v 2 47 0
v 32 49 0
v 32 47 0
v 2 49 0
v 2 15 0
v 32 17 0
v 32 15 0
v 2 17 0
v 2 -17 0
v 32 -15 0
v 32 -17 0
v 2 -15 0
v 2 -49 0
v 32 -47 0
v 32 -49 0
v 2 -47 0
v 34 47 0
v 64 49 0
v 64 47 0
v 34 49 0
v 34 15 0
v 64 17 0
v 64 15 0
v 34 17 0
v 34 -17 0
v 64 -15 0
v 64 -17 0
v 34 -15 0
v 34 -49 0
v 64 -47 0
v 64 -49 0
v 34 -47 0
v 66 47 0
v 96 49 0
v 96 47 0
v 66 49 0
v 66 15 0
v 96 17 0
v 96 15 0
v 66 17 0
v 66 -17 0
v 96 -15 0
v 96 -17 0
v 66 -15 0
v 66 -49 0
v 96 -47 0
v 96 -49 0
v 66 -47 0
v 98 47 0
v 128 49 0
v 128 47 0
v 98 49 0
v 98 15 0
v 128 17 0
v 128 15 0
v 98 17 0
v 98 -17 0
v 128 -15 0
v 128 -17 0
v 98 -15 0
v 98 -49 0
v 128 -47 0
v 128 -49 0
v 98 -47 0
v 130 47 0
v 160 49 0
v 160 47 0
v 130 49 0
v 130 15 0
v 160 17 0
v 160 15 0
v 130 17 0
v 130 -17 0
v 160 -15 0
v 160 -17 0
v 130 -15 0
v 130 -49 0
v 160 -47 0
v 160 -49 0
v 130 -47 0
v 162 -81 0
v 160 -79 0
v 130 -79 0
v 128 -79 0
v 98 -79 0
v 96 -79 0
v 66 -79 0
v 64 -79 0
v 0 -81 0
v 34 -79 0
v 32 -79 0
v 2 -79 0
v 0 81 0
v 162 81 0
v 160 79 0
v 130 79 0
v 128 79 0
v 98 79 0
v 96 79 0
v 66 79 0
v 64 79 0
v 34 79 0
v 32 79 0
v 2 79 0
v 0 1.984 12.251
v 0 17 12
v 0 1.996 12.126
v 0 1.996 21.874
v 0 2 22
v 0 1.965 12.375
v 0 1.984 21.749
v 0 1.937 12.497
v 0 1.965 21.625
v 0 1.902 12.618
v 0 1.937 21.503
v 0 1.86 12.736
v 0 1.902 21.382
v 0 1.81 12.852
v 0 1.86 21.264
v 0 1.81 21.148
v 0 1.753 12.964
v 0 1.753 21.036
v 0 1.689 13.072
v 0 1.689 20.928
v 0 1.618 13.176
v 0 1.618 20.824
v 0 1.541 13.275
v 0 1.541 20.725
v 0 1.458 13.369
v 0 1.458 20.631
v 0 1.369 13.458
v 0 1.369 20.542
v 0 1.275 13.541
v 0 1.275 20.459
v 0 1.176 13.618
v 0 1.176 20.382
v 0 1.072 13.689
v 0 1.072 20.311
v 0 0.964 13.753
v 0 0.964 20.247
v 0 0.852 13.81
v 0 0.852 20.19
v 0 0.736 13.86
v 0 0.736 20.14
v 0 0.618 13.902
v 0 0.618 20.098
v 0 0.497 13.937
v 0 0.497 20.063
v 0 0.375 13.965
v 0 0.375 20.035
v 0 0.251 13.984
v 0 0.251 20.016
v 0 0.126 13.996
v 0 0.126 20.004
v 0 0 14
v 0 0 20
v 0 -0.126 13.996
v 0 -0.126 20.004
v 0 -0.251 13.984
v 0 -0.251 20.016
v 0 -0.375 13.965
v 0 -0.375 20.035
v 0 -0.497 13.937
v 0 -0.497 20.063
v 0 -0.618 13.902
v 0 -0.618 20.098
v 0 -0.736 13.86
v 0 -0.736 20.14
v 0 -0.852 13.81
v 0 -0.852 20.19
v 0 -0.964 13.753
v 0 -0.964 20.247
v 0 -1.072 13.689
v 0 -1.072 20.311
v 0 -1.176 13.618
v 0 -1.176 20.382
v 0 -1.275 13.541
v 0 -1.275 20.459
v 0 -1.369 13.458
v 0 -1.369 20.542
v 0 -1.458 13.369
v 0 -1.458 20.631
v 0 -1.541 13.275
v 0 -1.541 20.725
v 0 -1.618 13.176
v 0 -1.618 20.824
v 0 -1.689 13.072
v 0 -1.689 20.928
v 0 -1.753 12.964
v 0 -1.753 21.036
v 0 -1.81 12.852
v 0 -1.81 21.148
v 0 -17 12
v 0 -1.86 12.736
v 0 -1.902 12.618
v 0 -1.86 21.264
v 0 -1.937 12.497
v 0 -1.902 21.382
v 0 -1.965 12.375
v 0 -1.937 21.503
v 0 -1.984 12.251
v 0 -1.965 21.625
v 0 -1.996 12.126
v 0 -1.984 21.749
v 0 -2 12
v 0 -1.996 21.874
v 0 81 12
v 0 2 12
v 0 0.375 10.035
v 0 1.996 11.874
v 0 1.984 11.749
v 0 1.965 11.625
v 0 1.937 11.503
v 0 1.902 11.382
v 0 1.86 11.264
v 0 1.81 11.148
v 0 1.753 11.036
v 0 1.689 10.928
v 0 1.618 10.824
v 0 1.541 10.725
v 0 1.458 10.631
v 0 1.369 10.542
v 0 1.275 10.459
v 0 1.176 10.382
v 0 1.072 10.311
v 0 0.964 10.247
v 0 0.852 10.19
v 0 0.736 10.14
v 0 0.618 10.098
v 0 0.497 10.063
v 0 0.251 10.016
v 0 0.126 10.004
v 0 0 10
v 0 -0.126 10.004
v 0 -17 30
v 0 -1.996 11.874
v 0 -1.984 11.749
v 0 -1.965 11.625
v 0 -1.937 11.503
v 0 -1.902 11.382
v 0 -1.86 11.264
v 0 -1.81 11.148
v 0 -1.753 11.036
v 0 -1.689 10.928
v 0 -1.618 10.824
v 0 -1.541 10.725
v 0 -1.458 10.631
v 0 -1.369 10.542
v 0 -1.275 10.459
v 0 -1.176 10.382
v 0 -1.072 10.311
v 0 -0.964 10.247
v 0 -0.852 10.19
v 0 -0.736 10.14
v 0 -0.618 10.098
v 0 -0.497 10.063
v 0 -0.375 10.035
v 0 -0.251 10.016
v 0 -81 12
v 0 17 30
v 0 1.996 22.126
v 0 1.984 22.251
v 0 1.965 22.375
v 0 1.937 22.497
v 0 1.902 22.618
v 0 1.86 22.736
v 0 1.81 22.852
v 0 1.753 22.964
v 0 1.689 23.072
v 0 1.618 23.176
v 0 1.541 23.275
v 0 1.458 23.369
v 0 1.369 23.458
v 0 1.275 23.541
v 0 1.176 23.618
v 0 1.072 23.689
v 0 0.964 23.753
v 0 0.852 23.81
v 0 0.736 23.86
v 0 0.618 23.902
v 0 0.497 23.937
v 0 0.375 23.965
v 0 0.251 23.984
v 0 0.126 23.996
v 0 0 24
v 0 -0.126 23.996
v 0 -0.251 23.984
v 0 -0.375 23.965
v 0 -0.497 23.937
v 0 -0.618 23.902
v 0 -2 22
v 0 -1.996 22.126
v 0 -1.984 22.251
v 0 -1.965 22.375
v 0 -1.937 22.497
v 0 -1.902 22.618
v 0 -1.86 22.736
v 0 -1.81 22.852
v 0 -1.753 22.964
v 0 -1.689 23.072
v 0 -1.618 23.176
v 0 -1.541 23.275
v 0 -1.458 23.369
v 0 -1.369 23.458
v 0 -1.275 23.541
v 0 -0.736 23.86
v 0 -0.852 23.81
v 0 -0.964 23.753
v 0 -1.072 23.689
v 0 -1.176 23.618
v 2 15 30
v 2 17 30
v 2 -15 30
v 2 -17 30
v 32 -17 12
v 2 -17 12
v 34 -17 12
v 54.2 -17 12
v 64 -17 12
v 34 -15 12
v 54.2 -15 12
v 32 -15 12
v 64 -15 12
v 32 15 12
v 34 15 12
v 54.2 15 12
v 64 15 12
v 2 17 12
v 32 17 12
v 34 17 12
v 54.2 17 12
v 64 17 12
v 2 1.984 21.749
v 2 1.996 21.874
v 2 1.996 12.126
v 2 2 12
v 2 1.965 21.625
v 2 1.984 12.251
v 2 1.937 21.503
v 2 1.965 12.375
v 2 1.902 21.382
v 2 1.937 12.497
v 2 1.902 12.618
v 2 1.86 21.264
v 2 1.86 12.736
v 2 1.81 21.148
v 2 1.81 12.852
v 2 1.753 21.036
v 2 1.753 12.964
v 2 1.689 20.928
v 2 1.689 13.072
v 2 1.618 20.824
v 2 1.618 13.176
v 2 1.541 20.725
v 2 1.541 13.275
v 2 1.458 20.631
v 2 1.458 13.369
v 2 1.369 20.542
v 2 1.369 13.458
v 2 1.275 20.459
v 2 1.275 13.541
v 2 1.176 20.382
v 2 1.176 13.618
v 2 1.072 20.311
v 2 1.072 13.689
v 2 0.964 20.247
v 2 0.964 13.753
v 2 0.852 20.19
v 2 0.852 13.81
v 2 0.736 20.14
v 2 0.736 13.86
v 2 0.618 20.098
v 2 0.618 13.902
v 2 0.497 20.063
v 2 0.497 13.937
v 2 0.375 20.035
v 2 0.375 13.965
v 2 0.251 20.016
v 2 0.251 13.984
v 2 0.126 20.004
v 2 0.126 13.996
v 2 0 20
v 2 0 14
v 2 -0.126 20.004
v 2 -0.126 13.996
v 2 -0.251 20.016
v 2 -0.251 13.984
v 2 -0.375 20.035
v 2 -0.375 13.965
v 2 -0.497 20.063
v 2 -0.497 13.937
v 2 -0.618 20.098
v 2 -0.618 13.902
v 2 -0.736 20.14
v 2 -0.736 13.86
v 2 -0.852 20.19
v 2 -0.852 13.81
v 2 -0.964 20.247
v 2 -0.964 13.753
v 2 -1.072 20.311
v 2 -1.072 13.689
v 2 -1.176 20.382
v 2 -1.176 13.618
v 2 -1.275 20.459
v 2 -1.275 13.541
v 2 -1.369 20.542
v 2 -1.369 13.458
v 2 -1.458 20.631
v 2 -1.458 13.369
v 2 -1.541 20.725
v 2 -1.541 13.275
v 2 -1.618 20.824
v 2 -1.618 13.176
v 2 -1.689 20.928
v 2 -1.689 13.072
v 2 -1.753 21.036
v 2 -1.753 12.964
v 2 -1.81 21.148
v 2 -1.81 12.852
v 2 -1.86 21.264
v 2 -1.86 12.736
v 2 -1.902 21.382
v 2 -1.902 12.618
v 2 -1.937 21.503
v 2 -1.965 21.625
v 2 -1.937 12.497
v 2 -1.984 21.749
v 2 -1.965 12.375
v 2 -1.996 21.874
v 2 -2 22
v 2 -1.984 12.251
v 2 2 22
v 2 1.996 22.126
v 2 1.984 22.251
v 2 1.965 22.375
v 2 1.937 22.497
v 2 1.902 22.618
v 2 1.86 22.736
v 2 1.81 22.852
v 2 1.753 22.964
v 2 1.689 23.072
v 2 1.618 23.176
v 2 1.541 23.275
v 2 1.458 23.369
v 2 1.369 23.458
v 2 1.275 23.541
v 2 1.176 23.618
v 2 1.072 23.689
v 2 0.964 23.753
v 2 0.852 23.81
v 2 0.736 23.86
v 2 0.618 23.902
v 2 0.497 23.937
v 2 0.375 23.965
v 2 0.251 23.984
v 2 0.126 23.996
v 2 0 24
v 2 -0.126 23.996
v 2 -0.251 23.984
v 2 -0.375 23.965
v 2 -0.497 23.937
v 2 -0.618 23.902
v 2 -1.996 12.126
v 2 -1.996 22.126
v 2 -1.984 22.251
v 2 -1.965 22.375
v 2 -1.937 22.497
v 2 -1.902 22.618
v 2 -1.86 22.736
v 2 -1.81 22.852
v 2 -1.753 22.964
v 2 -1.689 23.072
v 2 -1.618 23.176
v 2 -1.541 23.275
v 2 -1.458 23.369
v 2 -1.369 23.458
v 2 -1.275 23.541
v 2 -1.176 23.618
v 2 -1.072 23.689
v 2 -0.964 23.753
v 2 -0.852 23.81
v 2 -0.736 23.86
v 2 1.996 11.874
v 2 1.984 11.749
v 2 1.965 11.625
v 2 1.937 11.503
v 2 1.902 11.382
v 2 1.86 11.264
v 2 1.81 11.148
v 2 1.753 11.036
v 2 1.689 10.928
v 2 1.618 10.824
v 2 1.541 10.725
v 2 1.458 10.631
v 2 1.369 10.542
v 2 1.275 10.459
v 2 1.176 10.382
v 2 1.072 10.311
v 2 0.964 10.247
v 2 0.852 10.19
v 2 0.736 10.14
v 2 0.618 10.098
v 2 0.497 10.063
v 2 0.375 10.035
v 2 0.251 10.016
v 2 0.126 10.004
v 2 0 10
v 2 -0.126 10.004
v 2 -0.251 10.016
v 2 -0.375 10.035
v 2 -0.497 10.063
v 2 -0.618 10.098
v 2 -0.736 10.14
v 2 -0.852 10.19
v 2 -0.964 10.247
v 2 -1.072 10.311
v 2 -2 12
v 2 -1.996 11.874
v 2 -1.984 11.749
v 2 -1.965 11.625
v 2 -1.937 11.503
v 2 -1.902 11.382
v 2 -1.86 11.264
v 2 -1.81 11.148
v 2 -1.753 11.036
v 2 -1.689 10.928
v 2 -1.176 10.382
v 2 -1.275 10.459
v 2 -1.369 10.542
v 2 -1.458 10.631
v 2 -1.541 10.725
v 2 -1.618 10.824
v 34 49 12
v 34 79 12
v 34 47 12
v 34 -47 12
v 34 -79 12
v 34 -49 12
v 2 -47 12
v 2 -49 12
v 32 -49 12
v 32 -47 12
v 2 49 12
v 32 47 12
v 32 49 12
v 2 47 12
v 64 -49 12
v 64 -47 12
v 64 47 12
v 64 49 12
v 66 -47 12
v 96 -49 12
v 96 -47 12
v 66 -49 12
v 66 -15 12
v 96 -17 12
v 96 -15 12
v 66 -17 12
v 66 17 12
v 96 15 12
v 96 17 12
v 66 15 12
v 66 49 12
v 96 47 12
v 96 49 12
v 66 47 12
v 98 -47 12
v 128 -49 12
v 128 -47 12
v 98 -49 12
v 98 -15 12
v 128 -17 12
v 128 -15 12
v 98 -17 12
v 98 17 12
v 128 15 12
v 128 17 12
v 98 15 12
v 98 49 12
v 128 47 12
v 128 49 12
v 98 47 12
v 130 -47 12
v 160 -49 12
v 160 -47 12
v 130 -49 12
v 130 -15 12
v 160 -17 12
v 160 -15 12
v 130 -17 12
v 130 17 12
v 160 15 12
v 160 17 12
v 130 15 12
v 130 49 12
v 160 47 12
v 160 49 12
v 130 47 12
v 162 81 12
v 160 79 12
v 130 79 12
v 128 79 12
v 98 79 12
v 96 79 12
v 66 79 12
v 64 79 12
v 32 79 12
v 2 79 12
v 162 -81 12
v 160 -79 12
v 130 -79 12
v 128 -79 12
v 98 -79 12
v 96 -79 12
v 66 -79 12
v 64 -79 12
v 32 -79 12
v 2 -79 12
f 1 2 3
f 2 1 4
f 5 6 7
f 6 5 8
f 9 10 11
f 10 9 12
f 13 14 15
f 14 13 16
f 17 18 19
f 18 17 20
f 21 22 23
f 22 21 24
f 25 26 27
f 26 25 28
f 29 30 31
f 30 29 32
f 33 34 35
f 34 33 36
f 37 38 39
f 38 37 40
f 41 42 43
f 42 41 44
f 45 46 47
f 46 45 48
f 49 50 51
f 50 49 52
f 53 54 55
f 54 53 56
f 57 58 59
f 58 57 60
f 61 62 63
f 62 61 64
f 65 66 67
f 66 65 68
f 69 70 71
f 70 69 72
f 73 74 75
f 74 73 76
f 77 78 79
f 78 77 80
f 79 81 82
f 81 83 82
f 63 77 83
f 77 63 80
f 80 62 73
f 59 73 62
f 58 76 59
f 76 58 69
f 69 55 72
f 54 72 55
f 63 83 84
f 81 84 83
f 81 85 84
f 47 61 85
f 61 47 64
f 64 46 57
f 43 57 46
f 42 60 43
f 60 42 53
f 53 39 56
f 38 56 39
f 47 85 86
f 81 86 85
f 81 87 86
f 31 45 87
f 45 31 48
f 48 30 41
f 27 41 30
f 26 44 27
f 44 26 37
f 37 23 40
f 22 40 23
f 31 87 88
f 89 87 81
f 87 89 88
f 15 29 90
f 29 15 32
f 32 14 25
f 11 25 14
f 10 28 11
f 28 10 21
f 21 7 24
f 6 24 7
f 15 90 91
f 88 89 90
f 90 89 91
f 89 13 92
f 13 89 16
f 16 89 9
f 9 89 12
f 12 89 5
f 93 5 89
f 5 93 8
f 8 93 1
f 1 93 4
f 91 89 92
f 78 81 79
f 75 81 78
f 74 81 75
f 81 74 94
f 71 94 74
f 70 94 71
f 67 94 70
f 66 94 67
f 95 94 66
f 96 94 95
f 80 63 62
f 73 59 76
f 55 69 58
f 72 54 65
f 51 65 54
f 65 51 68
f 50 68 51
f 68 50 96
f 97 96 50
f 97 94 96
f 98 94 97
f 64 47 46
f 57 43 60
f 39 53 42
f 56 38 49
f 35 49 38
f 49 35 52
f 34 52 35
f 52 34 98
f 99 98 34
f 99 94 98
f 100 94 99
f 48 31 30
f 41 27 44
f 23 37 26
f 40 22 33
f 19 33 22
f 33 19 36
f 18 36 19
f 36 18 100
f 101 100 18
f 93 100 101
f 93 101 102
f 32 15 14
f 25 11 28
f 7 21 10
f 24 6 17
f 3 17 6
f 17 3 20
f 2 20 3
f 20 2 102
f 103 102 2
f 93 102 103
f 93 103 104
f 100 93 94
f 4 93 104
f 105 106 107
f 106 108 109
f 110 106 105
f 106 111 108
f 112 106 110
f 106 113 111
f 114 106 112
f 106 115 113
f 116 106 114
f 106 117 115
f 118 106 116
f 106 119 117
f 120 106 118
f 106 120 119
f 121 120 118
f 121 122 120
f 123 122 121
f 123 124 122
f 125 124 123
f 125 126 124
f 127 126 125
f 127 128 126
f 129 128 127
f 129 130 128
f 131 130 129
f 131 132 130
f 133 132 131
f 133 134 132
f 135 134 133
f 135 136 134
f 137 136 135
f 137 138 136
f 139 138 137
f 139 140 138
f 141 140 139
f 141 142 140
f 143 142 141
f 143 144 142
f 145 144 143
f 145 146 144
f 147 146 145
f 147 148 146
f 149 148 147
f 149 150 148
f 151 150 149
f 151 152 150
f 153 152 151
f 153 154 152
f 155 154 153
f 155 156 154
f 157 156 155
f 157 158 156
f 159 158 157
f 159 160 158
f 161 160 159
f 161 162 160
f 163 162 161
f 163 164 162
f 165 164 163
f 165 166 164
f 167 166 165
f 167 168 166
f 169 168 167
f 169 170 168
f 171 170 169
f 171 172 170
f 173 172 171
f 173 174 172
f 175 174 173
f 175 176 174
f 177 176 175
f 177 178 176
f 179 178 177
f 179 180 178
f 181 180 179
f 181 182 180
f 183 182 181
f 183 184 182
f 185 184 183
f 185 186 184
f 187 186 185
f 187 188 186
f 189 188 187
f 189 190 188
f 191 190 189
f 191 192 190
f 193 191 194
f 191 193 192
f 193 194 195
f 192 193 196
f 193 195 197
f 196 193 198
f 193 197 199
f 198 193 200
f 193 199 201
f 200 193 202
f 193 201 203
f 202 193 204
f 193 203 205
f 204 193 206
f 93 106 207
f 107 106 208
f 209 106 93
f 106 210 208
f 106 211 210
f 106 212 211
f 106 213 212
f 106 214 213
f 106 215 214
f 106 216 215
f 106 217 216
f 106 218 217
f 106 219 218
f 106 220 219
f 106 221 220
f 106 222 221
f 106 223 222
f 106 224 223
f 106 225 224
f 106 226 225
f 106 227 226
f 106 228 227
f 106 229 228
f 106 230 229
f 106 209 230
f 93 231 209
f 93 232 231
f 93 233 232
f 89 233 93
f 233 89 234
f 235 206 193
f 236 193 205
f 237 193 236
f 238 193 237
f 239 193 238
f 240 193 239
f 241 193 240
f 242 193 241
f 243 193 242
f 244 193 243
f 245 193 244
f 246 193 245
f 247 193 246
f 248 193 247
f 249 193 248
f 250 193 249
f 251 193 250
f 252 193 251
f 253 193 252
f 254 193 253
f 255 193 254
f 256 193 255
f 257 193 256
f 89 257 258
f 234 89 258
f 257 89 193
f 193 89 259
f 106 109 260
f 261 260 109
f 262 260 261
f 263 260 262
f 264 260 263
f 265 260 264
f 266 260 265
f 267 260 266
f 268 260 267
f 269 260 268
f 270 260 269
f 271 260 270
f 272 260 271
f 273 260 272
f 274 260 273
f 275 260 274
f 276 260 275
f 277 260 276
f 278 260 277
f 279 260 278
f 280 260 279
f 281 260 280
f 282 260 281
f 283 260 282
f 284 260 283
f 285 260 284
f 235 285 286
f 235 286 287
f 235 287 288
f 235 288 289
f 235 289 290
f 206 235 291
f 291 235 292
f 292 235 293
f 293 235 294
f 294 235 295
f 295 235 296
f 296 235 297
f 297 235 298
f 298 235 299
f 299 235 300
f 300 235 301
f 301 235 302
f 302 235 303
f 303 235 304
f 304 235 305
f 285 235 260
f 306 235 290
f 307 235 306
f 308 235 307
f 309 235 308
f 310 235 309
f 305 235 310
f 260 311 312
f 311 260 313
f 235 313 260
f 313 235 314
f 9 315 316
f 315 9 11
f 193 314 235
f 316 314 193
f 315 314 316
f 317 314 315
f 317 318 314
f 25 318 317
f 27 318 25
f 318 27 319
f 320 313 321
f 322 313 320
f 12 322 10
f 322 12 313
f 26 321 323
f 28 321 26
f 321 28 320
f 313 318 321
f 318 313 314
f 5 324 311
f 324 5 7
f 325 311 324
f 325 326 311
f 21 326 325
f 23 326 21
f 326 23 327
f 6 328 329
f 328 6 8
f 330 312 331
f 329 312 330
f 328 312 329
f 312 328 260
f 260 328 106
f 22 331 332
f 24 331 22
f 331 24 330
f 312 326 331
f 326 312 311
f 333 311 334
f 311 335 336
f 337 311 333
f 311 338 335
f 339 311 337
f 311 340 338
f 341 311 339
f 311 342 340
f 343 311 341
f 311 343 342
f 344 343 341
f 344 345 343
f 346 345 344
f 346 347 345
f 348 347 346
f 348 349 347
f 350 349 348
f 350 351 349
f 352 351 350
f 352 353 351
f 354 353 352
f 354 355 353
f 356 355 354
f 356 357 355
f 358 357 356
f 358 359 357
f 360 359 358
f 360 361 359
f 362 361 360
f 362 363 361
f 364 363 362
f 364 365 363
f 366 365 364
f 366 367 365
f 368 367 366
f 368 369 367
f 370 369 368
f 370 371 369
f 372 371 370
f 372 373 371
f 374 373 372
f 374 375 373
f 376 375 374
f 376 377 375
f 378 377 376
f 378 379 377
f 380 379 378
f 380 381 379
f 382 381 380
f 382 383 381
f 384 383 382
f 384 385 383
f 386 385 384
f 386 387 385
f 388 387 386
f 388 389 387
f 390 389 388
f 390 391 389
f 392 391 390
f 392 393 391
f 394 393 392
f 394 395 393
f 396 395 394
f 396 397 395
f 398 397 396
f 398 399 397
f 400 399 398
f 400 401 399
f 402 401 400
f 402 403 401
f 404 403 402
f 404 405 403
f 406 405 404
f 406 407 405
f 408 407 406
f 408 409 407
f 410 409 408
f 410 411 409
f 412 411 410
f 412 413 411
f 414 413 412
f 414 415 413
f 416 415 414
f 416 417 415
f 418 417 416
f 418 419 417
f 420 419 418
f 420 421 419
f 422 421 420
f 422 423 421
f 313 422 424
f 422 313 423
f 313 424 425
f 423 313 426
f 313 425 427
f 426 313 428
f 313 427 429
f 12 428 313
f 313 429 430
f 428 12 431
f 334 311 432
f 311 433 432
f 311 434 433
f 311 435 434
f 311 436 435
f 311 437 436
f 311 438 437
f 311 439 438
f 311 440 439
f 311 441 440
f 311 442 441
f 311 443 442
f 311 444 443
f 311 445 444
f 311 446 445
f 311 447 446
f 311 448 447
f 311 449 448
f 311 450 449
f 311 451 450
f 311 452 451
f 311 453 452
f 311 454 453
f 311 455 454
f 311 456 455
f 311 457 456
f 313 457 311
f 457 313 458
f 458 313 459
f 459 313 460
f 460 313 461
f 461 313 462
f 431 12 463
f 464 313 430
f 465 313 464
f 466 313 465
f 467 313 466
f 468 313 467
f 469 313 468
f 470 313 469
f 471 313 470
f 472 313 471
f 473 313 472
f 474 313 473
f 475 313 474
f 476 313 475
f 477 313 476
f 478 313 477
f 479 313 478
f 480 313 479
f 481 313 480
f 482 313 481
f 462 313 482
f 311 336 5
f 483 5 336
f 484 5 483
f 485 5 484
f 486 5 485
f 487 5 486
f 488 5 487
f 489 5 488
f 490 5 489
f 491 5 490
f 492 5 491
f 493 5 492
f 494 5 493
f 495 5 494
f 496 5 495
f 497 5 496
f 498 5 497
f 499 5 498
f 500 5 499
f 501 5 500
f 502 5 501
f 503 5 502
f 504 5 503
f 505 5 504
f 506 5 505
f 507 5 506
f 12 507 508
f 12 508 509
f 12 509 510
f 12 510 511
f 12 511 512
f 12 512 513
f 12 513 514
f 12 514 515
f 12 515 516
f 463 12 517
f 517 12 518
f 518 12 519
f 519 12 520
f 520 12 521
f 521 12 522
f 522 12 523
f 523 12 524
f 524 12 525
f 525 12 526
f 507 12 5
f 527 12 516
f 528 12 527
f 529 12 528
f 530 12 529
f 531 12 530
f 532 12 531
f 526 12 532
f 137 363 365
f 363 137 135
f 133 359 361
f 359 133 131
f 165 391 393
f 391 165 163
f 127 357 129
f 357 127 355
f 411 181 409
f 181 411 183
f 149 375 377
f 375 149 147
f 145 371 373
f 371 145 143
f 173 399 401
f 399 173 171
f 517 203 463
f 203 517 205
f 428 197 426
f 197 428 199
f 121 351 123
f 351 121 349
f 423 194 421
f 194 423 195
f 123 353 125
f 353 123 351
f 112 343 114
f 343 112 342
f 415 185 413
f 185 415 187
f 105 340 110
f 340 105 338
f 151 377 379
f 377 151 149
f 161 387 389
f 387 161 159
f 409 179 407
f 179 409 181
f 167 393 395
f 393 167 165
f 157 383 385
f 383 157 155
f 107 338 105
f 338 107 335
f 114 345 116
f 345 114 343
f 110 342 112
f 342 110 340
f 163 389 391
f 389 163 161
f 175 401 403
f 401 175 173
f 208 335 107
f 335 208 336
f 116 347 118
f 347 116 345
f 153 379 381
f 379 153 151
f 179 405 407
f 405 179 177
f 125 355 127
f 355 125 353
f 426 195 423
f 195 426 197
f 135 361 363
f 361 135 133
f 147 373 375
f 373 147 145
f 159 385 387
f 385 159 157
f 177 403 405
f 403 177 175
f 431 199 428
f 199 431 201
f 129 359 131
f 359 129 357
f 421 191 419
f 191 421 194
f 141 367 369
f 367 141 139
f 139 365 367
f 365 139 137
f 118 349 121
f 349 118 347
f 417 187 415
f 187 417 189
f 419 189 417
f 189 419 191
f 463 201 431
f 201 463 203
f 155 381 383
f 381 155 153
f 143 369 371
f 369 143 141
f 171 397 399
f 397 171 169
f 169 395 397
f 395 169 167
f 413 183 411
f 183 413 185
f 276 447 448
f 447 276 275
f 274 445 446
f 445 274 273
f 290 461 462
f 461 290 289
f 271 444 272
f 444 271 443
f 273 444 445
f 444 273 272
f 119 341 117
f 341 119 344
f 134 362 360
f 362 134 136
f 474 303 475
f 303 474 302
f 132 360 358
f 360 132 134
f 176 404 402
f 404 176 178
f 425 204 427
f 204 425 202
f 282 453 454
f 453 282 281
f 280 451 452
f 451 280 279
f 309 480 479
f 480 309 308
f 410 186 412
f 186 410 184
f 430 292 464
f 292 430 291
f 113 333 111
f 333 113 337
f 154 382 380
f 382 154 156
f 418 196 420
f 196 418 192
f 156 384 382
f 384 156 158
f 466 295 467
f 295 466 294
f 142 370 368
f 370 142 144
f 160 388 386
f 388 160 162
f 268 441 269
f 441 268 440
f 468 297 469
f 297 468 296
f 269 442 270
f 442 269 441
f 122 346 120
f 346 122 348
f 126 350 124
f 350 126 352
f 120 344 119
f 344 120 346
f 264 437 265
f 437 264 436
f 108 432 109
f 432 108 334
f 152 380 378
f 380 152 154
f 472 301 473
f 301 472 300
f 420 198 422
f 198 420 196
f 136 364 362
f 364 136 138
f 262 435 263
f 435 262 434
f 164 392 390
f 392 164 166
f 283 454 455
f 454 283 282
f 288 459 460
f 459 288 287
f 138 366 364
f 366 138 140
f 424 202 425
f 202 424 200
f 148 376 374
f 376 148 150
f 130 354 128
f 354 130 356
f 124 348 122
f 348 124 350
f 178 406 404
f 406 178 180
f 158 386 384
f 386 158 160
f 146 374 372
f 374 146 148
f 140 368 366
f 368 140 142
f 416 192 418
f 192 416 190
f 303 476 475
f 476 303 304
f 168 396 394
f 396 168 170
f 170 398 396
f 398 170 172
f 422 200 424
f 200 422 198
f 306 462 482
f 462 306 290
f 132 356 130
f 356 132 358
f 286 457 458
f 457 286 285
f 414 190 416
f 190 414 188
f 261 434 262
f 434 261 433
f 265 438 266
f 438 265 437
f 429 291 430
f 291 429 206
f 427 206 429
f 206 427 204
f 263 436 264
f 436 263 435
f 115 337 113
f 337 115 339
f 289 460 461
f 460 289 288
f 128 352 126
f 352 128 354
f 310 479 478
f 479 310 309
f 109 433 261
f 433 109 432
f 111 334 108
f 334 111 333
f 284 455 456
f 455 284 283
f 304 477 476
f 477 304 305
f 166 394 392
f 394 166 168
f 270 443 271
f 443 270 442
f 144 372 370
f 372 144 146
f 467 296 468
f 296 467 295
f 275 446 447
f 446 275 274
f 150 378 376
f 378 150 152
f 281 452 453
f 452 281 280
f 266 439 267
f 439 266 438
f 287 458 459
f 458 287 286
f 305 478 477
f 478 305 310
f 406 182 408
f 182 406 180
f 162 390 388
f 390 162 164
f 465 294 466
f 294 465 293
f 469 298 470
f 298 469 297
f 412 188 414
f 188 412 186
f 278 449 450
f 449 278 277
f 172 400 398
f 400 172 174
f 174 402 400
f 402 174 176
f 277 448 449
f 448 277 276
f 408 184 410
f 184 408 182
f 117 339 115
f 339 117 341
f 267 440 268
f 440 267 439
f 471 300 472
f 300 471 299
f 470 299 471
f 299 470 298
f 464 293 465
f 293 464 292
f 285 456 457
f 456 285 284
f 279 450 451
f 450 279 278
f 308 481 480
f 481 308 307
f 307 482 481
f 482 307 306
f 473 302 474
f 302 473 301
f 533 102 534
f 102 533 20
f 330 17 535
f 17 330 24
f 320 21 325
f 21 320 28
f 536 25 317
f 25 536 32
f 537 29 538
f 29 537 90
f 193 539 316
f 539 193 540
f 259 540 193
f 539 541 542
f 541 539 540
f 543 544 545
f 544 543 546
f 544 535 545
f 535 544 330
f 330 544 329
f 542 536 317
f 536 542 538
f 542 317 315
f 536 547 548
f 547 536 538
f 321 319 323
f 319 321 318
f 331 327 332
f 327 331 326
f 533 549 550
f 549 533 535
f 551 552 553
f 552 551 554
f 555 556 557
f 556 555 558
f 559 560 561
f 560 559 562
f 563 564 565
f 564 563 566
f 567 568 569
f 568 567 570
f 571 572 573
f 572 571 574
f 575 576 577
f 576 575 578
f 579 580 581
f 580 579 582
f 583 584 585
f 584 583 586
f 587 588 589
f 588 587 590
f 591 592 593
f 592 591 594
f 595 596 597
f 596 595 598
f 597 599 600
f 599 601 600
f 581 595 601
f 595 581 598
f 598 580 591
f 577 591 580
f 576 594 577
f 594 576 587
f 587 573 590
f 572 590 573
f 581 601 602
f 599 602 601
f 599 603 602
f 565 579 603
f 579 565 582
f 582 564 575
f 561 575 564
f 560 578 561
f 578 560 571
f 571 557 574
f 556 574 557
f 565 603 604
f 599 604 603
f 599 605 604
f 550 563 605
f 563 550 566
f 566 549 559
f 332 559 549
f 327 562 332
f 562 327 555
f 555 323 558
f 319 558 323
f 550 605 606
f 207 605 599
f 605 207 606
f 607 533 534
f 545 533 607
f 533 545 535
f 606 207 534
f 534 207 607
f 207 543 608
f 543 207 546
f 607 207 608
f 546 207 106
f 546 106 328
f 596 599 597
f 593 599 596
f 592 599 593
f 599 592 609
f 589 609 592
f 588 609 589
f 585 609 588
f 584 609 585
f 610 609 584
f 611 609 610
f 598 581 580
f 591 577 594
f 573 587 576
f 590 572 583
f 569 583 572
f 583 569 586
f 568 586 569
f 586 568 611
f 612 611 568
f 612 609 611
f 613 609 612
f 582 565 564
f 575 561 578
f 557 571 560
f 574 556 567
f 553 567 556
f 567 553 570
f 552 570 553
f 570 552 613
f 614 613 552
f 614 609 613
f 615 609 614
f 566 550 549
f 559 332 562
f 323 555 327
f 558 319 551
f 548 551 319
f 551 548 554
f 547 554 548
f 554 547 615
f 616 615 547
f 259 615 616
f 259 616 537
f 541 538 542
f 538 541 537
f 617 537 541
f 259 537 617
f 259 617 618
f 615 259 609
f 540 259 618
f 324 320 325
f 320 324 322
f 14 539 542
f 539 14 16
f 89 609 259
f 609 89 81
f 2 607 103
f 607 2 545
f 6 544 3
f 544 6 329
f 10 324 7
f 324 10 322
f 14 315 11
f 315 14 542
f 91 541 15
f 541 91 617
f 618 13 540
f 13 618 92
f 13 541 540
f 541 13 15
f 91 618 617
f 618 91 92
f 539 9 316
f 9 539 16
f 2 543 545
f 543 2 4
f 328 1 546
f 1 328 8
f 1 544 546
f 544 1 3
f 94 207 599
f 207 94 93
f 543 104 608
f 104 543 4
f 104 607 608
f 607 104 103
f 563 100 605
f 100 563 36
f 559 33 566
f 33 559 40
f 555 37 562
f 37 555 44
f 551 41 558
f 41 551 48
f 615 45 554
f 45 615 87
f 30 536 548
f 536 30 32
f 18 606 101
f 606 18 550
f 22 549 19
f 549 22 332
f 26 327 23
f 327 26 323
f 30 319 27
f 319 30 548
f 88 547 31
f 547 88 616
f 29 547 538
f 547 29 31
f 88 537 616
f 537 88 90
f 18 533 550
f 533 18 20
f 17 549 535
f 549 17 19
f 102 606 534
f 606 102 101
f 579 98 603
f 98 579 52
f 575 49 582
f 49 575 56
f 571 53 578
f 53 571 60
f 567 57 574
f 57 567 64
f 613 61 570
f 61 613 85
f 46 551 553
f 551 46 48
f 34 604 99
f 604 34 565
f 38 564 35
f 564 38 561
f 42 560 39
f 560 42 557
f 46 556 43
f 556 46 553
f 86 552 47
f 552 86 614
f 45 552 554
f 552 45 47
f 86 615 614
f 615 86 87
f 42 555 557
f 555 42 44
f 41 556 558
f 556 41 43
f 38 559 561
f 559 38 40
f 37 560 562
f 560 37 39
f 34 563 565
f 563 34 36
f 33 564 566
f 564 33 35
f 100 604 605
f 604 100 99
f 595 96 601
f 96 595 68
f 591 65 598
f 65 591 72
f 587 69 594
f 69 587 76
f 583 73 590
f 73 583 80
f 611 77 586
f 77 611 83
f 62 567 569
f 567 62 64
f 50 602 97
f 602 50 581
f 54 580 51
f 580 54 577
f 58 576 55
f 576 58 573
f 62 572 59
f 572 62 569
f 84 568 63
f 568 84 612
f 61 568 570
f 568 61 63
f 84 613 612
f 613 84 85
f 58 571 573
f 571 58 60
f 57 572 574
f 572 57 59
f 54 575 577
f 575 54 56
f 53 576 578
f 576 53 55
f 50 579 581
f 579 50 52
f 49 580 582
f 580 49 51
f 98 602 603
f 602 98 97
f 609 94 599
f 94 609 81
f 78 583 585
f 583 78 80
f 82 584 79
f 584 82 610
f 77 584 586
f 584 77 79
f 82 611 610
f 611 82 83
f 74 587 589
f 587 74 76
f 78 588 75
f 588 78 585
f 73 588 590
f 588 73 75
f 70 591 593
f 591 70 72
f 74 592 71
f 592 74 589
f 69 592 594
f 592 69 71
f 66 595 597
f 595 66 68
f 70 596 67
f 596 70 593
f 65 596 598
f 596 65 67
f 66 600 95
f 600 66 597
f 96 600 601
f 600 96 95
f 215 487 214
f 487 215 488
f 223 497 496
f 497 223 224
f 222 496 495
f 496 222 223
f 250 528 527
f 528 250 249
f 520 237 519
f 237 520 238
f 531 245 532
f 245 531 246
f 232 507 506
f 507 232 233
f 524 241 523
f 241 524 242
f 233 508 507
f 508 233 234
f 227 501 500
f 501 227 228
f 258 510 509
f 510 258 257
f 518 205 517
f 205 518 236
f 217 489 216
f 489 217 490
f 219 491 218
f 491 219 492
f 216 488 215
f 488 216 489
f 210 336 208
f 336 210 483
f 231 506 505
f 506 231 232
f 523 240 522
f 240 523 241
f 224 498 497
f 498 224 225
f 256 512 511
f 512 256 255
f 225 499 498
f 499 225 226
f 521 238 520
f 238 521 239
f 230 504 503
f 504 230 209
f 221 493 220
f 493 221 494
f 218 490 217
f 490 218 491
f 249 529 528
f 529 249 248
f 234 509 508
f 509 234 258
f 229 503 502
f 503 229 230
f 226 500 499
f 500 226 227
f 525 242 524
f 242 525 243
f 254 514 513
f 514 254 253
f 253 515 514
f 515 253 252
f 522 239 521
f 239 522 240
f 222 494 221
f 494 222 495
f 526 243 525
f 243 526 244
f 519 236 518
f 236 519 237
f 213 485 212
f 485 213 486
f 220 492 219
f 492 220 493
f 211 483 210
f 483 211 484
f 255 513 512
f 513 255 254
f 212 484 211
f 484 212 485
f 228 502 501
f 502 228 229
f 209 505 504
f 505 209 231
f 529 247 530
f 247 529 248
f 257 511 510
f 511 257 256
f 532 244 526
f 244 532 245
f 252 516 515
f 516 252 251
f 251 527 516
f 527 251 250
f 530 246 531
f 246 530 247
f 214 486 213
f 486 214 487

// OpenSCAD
sections_width = 5;
sections_depth = 5;
swidth = 30;
sdepth = 30;
sheight = 10;
wallthickness = 2;
box_width = swidth + 2 * wallthickness;
box_depth = sdepth + 2 * wallthickness;
box_height = sheight + wallthickness;
$fn = 100;

module holding_structure(width, depth, height, baseheight) {
	traegerpolygon = [[0,0], [depth,0], [depth, baseheight], [wallthickness, height], [0, height]];
	backplane_width = swidth + 2 * wallthickness;
	difference() {
	union() {
	translate([0, -swidth/2 , 0])rotate([90, 0, 0])linear_extrude(wallthickness)polygon(traegerpolygon);
	translate([0, swidth/2 + wallthickness, 0])rotate([90, 0, 0])linear_extrude(wallthickness)polygon(traegerpolygon);
	translate([0, -backplane_width/2, 0])cube([wallthickness, backplane_width, height]);
	}
	translate([0, 0, 1.2*sheight])rotate([0, 90, 0])cylinder(r=2, h=2);
	translate([0, 0, 2.2*sheight])rotate([0, 90, 0])cylinder(r=2, h=2);
	}
}

module box_both_open(outside_width, outside_depth, outside_height, wallthickness) {
	difference() {
	cube([outside_width, outside_depth, outside_height]);
	translate([wallthickness, wallthickness, 0])cube([outside_width - 2 * wallthickness, outside_depth - 2 * wallthickness, outside_height]);
	}
}
difference() {
union() {
holding_structure(swidth, 2 * sdepth, 3 * sheight, sheight);
for ( i = [0:sections_width-1] ) {
	for ( j = [0:sections_depth-1] ) {
		translate([(i)*(box_width-wallthickness), (j-2)*(box_depth-wallthickness), 0])
			translate([0, -box_width/2, 0])box_both_open(box_width, box_depth, box_height, 2);
	}
}
}
translate([0, 0, 1.2*sheight])rotate([0, 90, 0])cylinder(r=2, h=2);
}
